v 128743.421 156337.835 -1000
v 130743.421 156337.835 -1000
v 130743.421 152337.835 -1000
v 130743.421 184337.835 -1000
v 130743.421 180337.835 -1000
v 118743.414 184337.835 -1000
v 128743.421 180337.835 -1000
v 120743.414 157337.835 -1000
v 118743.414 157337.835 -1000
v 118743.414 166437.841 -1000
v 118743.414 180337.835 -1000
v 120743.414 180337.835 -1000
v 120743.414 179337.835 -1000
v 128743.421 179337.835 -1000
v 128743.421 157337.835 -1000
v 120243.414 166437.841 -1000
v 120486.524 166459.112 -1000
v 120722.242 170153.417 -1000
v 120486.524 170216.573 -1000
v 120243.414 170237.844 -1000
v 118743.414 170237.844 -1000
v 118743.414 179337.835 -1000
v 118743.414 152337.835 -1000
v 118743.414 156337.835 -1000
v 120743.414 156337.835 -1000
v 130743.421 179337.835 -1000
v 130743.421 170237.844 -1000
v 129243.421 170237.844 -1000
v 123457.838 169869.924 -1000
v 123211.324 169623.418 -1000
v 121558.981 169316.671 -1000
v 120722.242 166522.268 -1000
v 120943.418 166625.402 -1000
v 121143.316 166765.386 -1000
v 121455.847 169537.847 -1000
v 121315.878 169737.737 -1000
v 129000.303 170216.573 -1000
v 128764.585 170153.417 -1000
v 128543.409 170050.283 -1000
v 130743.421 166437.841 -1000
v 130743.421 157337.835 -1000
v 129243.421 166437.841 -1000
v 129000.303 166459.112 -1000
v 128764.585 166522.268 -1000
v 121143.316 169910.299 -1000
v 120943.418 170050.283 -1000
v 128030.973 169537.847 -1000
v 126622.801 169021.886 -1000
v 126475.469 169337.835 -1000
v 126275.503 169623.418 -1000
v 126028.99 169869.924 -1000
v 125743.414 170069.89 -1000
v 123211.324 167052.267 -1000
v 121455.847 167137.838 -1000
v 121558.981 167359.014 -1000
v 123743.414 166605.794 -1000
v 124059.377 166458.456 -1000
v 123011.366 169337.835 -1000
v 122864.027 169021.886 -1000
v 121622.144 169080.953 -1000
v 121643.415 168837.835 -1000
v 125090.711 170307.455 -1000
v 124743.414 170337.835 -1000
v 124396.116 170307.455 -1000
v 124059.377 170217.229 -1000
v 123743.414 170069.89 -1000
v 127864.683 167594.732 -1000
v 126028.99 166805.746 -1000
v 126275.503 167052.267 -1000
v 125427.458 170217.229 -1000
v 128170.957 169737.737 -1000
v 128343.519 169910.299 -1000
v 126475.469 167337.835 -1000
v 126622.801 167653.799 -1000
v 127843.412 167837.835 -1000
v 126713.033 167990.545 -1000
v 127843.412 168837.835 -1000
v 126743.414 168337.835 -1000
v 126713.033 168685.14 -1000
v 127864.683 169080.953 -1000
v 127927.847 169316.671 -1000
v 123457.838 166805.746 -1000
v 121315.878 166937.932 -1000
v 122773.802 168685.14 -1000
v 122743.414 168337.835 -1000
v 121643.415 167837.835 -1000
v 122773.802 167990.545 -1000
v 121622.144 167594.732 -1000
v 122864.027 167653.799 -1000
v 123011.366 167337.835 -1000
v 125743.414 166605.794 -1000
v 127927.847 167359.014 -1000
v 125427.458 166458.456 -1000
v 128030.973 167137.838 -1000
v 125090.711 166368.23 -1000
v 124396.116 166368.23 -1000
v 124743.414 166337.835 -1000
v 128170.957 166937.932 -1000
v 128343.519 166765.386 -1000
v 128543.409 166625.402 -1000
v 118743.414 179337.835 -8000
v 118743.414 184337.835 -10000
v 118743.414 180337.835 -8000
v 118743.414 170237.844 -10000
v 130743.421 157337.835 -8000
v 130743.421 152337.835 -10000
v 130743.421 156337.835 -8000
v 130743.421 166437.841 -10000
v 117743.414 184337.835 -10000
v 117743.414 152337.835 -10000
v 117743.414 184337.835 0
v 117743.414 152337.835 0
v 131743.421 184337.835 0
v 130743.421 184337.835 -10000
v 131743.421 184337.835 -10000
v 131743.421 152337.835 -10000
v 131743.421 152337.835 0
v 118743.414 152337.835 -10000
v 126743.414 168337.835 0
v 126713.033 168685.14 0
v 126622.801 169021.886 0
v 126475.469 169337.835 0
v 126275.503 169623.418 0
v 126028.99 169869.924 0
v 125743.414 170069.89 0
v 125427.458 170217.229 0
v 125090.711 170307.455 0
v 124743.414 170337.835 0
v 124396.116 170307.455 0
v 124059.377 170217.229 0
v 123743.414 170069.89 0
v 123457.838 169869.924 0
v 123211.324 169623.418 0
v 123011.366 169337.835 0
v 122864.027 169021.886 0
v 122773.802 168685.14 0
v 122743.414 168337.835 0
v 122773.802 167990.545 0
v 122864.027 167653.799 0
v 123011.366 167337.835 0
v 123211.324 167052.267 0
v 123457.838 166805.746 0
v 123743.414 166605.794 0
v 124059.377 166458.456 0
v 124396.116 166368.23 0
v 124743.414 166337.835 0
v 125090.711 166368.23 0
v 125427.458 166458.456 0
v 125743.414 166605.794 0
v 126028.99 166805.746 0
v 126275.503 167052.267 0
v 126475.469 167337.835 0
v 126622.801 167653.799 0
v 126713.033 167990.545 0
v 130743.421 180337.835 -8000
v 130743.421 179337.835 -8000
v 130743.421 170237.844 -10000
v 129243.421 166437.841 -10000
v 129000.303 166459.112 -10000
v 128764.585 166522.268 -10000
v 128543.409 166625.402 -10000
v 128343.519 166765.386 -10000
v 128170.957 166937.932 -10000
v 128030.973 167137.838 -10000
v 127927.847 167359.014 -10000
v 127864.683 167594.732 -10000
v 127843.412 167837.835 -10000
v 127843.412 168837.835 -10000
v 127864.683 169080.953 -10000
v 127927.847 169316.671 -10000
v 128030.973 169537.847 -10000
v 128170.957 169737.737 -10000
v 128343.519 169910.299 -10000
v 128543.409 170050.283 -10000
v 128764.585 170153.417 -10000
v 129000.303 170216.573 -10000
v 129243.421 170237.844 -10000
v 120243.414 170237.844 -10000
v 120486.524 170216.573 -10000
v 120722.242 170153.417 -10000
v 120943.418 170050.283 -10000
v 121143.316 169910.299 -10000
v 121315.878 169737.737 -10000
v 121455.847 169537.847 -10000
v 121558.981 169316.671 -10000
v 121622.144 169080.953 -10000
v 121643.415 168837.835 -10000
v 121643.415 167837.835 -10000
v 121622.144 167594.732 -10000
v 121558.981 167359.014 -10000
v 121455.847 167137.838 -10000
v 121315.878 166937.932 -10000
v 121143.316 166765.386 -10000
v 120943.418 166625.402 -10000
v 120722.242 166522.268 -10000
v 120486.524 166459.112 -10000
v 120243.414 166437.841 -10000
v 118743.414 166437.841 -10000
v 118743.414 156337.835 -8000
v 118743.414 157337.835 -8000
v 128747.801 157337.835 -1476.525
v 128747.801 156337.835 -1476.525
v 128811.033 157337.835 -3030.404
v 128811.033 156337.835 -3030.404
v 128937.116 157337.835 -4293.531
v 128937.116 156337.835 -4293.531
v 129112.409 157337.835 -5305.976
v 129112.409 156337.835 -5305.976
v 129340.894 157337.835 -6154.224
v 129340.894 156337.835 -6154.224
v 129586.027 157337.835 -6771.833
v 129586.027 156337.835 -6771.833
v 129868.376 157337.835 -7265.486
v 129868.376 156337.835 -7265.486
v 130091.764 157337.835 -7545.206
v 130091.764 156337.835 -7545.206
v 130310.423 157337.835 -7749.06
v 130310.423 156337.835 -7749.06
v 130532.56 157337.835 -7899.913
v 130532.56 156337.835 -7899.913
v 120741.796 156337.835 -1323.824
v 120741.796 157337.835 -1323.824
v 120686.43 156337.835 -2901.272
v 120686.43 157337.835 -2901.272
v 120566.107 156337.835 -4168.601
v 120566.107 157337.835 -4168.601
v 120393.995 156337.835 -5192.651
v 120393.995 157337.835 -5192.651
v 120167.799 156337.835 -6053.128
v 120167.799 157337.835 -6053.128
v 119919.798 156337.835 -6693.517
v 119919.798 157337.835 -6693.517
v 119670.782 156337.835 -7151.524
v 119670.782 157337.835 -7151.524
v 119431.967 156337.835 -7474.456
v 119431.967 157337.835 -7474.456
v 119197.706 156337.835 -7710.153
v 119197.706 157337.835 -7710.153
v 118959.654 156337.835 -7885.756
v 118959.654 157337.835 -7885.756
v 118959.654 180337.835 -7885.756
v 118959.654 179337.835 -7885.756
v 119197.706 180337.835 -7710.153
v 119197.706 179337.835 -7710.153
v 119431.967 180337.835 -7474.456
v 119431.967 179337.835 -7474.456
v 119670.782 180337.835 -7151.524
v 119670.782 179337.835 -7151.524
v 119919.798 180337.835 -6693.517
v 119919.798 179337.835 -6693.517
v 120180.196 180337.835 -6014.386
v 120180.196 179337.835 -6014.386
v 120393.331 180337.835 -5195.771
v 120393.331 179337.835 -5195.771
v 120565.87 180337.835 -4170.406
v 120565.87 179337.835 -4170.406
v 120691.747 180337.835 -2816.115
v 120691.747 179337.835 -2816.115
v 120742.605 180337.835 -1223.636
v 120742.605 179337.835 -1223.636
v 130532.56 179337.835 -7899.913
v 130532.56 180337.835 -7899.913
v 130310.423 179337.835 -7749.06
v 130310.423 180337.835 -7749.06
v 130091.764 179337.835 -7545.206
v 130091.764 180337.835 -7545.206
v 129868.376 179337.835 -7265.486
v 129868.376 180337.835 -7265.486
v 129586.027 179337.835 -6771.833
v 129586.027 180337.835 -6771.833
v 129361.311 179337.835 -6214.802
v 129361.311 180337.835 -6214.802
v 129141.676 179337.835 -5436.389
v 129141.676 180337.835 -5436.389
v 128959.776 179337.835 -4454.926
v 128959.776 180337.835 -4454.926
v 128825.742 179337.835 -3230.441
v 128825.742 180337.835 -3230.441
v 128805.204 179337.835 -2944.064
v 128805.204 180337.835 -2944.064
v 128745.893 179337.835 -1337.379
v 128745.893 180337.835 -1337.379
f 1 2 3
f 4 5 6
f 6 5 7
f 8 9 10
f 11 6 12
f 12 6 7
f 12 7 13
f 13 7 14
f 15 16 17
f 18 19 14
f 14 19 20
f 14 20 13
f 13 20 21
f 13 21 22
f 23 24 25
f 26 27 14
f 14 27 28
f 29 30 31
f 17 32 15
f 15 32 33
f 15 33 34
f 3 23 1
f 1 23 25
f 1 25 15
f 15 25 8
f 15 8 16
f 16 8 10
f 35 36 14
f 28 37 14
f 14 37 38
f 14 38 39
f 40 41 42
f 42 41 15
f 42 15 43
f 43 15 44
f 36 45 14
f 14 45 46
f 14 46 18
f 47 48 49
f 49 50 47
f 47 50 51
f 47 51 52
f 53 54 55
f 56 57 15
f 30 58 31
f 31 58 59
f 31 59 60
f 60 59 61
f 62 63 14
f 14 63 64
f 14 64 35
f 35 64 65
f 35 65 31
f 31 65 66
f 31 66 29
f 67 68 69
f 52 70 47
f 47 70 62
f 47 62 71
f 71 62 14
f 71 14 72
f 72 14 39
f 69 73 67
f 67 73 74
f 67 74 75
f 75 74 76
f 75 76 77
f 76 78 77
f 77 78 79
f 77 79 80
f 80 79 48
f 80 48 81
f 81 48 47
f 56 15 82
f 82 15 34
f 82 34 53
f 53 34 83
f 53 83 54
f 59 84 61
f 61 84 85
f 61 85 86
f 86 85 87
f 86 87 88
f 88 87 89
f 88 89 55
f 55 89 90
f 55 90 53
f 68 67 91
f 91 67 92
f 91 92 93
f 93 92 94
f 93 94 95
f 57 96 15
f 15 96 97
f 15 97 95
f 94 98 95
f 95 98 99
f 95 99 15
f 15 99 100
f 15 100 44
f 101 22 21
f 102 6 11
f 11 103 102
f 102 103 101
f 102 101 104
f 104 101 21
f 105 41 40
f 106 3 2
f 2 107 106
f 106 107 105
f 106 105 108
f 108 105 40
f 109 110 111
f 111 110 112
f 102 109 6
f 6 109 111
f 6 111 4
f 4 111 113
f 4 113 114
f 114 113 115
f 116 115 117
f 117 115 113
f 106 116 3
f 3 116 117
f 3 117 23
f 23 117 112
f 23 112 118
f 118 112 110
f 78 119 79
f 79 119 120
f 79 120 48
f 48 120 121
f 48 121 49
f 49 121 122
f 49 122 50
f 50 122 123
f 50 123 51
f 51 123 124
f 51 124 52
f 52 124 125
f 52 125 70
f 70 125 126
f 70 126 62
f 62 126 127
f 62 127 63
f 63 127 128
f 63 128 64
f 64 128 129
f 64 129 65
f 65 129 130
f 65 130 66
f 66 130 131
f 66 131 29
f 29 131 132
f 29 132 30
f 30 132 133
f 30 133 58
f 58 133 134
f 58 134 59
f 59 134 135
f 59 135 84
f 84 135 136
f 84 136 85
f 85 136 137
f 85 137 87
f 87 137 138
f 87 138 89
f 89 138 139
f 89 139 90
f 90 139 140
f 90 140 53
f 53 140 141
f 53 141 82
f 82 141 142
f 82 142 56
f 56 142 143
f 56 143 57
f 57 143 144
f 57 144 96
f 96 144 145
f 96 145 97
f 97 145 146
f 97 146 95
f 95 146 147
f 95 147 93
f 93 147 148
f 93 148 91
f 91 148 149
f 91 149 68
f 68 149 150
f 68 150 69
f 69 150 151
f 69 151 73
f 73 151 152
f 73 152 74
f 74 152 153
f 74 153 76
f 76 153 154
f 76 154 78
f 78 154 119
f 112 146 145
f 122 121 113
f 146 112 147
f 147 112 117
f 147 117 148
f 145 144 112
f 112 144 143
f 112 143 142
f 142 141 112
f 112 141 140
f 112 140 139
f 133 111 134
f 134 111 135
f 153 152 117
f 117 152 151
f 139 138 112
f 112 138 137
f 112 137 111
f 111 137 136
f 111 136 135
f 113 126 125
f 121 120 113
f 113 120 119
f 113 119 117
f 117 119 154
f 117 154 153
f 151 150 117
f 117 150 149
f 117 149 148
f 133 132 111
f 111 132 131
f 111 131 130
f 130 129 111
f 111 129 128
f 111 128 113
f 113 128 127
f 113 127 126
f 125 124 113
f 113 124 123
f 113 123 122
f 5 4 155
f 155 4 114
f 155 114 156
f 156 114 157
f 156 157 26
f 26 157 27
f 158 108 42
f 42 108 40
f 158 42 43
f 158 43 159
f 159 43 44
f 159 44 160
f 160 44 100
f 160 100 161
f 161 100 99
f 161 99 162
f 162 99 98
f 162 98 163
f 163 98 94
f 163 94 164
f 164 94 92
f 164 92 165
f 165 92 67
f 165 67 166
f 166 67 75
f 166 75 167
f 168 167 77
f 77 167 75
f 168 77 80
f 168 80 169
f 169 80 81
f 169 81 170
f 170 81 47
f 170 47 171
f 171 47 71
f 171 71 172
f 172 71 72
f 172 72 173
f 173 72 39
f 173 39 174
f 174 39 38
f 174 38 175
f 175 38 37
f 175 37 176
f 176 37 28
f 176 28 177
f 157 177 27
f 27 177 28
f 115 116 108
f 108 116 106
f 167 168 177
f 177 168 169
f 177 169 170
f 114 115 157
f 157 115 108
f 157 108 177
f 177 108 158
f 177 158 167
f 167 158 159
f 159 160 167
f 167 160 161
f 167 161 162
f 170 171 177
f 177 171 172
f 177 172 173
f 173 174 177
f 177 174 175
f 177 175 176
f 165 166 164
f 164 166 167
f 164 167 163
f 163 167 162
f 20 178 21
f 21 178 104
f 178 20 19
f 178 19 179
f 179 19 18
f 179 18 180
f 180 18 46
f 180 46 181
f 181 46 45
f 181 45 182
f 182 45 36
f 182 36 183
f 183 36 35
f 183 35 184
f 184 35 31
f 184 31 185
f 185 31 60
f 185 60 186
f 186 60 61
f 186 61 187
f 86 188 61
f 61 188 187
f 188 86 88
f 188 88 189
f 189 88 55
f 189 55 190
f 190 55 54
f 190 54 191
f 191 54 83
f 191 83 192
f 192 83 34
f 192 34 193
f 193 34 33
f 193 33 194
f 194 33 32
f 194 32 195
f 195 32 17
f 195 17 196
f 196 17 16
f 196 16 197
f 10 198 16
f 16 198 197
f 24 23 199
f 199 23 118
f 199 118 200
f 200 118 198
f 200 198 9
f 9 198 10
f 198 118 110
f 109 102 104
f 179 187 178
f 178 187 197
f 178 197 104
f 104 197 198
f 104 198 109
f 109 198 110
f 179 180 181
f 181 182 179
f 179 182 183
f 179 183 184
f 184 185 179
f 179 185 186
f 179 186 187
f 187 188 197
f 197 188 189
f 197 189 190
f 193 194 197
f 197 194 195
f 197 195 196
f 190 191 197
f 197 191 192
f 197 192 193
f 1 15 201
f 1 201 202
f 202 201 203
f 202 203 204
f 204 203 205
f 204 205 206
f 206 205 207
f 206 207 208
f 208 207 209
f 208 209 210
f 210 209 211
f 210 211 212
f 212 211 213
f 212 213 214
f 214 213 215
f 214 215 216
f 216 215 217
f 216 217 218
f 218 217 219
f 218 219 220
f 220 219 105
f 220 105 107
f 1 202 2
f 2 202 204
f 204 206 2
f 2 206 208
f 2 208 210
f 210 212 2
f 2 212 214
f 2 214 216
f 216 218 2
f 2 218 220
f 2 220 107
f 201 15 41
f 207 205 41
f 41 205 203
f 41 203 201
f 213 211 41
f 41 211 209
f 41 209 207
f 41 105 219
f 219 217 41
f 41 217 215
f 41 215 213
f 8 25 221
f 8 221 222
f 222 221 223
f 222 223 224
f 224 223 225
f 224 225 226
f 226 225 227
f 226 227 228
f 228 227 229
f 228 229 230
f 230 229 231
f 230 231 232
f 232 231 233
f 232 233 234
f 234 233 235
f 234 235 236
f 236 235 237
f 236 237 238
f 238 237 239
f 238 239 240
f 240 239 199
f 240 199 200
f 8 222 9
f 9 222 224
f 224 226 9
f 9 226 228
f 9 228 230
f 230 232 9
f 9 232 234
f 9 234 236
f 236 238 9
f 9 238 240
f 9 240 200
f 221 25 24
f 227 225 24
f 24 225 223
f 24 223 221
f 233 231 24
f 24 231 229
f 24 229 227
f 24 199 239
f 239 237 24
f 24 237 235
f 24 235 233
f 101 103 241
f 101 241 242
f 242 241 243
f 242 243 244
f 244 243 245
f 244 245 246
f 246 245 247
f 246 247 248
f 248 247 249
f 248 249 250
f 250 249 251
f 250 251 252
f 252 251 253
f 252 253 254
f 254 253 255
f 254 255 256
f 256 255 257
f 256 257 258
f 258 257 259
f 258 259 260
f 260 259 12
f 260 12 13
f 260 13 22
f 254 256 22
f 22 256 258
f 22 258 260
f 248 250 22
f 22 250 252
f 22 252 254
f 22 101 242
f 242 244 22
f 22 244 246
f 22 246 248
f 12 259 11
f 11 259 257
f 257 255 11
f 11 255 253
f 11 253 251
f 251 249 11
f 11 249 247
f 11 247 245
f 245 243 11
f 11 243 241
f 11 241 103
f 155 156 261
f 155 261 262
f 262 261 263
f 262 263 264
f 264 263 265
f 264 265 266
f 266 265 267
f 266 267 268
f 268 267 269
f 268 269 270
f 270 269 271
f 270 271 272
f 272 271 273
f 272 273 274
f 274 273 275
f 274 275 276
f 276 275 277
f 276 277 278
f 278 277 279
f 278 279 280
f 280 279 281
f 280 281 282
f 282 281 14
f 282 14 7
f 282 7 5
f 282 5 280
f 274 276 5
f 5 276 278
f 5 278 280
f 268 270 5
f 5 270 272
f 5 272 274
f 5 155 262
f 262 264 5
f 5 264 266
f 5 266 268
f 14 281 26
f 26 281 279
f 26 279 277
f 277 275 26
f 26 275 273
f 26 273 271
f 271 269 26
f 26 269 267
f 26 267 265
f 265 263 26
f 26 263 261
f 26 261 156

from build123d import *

# Parameters (mm, degrees)
CROQUIS1_W                   = 14000
CROQUIS1_H                   = 32000
CROQUIS1_R                   = 2000
SALIENTE_EXTRUIR1_DEPTH      = 1000
SALIENTE_EXTRUIR2_DEPTH      = 10000
SALIENTE_EXTRUIR3_DEPTH      = 500
SALIENTE_EXTRUIR3_DEPTH_BACK = 500
SALIENTE_EXTRUIR4_DEPTH      = 500
SALIENTE_EXTRUIR4_DEPTH_BACK = 500


with BuildPart() as part:
    # Croquis1 → Saliente-Extruir1 (new body)
    with BuildSketch(Plane.XY):
        with Locations((124743.416897498, 168337.836627923)):
            Rectangle(CROQUIS1_W, CROQUIS1_H)
        with Locations((124743.416897498, 168337.836627923)):
            Circle(CROQUIS1_R, mode=Mode.SUBTRACT)
    extrude(amount=-SALIENTE_EXTRUIR1_DEPTH)

    # Croquis1<6> → Saliente-Extruir2 (add)
    with BuildSketch(Plane.XY):
        with BuildLine():
            Line((117743.416897498, 152337.836627923), (118743.416897498, 152337.836627923))
            Line((118743.416897498, 152337.836627923), (118743.416897498, 166437.836627923))
            Line((118743.416897498, 166437.836627923), (120243.416897498, 166437.836627923))
            ThreePointArc((120243.416897498, 166437.836627923), (121233.366391159, 166847.887134262), (121643.416897498, 167837.836627923))
            Line((121643.416897498, 167837.836627923), (121643.416897498, 168837.836627923))
            ThreePointArc((121643.416897498, 168837.836627923), (121233.366391159, 169827.786121585), (120243.416897498, 170237.836627923))
            Line((120243.416897498, 170237.836627923), (118743.416897498, 170237.836627923))
            Line((118743.416897498, 170237.836627923), (118743.416897498, 184337.836627923))
            Line((118743.416897498, 184337.836627923), (117743.416897498, 184337.836627923))
            Line((117743.416897498, 184337.836627923), (117743.416897498, 152337.836627923))
        make_face()
        with BuildLine():
            Line((130743.416897498, 152337.836627923), (131743.416897498, 152337.836627923))
            Line((131743.416897498, 152337.836627923), (131743.416897498, 184337.836627923))
            Line((131743.416897498, 184337.836627923), (130743.416897498, 184337.836627923))
            Line((130743.416897498, 184337.836627923), (130743.416897498, 170237.836627923))
            Line((130743.416897498, 170237.836627923), (129243.416897498, 170237.836627923))
            ThreePointArc((129243.416897498, 170237.836627923), (128253.467403837, 169827.786121585), (127843.416897498, 168837.836627923))
            Line((127843.416897498, 168837.836627923), (127843.416897498, 167837.836627923))
            ThreePointArc((127843.416897498, 167837.836627923), (128253.467403837, 166847.887134262), (129243.416897498, 166437.836627923))
            Line((129243.416897498, 166437.836627923), (130743.416897498, 166437.836627923))
            Line((130743.416897498, 166437.836627923), (130743.416897498, 152337.836627923))
        make_face()
    extrude(amount=-SALIENTE_EXTRUIR2_DEPTH)

    # Croquis2 → Saliente-Extruir3 (add, two sides: drawn at the far end of the back side and taken through both)
    with BuildSketch(Plane(origin=(0, 156837.836627923, 0), x_dir=(1, 0, 0), z_dir=(0, 1, 0)).offset(-SALIENTE_EXTRUIR3_DEPTH_BACK)):
        with BuildLine():
            Line((130743.416897498, 1000), (130743.416897498, 8000))
            add(Edge.make_bspline(
                [(130743.416897498, 8000), (128761.675222051, 7234.348262256), (128743.416897498, 1000)],
                knots=[0, 0, 0, 0.590989184, 0.590989184, 0.590989184], degree=2))
            Line((128743.416897498, 1000), (130743.416897498, 1000))
        make_face()
        with BuildLine():
            add(Edge.make_bspline(
                [(118743.416897498, 8000), (120739.811138244, 7120.578794783), (120743.416897498, 1000)],
                knots=[0, 0, 0, 0.514460755, 0.514460755, 0.514460755], degree=2))
            Line((118743.416897498, 8000), (118743.416897498, 1000))
            Line((118743.416897498, 1000), (120743.416897498, 1000))
        make_face()
    extrude(amount=SALIENTE_EXTRUIR3_DEPTH + SALIENTE_EXTRUIR3_DEPTH_BACK)

    # Croquis3 → Saliente-Extruir4 (add, two sides: drawn at the far end of the back side and taken through both)
    with BuildSketch(Plane(origin=(0, 179837.836627923, 0), x_dir=(1, 0, 0), z_dir=(0, 1, 0)).offset(-SALIENTE_EXTRUIR4_DEPTH_BACK)):
        with BuildLine():
            Line((118743.416897498, 8000), (118743.416897498, 1000))
            Line((118743.416897498, 1000), (120743.416897498, 1000))
            add(Edge.make_bspline(
                [(118743.416897498, 8000), (120739.811138244, 7120.578794783), (120743.416897498, 1000)],
                knots=[0, 0, 0, 1, 1, 1], degree=2))
        make_face()
        with BuildLine():
            add(Edge.make_bspline(
                [(130743.416897498, 8000), (128761.675222051, 7234.348262256), (128743.416897498, 1000)],
                knots=[0, 0, 0, 1, 1, 1], degree=2))
            Line((128743.416897498, 1000), (130743.416897498, 1000))
            Line((130743.416897498, 1000), (130743.416897498, 8000))
        make_face()
    extrude(amount=SALIENTE_EXTRUIR4_DEPTH + SALIENTE_EXTRUIR4_DEPTH_BACK)


solid = part.part
